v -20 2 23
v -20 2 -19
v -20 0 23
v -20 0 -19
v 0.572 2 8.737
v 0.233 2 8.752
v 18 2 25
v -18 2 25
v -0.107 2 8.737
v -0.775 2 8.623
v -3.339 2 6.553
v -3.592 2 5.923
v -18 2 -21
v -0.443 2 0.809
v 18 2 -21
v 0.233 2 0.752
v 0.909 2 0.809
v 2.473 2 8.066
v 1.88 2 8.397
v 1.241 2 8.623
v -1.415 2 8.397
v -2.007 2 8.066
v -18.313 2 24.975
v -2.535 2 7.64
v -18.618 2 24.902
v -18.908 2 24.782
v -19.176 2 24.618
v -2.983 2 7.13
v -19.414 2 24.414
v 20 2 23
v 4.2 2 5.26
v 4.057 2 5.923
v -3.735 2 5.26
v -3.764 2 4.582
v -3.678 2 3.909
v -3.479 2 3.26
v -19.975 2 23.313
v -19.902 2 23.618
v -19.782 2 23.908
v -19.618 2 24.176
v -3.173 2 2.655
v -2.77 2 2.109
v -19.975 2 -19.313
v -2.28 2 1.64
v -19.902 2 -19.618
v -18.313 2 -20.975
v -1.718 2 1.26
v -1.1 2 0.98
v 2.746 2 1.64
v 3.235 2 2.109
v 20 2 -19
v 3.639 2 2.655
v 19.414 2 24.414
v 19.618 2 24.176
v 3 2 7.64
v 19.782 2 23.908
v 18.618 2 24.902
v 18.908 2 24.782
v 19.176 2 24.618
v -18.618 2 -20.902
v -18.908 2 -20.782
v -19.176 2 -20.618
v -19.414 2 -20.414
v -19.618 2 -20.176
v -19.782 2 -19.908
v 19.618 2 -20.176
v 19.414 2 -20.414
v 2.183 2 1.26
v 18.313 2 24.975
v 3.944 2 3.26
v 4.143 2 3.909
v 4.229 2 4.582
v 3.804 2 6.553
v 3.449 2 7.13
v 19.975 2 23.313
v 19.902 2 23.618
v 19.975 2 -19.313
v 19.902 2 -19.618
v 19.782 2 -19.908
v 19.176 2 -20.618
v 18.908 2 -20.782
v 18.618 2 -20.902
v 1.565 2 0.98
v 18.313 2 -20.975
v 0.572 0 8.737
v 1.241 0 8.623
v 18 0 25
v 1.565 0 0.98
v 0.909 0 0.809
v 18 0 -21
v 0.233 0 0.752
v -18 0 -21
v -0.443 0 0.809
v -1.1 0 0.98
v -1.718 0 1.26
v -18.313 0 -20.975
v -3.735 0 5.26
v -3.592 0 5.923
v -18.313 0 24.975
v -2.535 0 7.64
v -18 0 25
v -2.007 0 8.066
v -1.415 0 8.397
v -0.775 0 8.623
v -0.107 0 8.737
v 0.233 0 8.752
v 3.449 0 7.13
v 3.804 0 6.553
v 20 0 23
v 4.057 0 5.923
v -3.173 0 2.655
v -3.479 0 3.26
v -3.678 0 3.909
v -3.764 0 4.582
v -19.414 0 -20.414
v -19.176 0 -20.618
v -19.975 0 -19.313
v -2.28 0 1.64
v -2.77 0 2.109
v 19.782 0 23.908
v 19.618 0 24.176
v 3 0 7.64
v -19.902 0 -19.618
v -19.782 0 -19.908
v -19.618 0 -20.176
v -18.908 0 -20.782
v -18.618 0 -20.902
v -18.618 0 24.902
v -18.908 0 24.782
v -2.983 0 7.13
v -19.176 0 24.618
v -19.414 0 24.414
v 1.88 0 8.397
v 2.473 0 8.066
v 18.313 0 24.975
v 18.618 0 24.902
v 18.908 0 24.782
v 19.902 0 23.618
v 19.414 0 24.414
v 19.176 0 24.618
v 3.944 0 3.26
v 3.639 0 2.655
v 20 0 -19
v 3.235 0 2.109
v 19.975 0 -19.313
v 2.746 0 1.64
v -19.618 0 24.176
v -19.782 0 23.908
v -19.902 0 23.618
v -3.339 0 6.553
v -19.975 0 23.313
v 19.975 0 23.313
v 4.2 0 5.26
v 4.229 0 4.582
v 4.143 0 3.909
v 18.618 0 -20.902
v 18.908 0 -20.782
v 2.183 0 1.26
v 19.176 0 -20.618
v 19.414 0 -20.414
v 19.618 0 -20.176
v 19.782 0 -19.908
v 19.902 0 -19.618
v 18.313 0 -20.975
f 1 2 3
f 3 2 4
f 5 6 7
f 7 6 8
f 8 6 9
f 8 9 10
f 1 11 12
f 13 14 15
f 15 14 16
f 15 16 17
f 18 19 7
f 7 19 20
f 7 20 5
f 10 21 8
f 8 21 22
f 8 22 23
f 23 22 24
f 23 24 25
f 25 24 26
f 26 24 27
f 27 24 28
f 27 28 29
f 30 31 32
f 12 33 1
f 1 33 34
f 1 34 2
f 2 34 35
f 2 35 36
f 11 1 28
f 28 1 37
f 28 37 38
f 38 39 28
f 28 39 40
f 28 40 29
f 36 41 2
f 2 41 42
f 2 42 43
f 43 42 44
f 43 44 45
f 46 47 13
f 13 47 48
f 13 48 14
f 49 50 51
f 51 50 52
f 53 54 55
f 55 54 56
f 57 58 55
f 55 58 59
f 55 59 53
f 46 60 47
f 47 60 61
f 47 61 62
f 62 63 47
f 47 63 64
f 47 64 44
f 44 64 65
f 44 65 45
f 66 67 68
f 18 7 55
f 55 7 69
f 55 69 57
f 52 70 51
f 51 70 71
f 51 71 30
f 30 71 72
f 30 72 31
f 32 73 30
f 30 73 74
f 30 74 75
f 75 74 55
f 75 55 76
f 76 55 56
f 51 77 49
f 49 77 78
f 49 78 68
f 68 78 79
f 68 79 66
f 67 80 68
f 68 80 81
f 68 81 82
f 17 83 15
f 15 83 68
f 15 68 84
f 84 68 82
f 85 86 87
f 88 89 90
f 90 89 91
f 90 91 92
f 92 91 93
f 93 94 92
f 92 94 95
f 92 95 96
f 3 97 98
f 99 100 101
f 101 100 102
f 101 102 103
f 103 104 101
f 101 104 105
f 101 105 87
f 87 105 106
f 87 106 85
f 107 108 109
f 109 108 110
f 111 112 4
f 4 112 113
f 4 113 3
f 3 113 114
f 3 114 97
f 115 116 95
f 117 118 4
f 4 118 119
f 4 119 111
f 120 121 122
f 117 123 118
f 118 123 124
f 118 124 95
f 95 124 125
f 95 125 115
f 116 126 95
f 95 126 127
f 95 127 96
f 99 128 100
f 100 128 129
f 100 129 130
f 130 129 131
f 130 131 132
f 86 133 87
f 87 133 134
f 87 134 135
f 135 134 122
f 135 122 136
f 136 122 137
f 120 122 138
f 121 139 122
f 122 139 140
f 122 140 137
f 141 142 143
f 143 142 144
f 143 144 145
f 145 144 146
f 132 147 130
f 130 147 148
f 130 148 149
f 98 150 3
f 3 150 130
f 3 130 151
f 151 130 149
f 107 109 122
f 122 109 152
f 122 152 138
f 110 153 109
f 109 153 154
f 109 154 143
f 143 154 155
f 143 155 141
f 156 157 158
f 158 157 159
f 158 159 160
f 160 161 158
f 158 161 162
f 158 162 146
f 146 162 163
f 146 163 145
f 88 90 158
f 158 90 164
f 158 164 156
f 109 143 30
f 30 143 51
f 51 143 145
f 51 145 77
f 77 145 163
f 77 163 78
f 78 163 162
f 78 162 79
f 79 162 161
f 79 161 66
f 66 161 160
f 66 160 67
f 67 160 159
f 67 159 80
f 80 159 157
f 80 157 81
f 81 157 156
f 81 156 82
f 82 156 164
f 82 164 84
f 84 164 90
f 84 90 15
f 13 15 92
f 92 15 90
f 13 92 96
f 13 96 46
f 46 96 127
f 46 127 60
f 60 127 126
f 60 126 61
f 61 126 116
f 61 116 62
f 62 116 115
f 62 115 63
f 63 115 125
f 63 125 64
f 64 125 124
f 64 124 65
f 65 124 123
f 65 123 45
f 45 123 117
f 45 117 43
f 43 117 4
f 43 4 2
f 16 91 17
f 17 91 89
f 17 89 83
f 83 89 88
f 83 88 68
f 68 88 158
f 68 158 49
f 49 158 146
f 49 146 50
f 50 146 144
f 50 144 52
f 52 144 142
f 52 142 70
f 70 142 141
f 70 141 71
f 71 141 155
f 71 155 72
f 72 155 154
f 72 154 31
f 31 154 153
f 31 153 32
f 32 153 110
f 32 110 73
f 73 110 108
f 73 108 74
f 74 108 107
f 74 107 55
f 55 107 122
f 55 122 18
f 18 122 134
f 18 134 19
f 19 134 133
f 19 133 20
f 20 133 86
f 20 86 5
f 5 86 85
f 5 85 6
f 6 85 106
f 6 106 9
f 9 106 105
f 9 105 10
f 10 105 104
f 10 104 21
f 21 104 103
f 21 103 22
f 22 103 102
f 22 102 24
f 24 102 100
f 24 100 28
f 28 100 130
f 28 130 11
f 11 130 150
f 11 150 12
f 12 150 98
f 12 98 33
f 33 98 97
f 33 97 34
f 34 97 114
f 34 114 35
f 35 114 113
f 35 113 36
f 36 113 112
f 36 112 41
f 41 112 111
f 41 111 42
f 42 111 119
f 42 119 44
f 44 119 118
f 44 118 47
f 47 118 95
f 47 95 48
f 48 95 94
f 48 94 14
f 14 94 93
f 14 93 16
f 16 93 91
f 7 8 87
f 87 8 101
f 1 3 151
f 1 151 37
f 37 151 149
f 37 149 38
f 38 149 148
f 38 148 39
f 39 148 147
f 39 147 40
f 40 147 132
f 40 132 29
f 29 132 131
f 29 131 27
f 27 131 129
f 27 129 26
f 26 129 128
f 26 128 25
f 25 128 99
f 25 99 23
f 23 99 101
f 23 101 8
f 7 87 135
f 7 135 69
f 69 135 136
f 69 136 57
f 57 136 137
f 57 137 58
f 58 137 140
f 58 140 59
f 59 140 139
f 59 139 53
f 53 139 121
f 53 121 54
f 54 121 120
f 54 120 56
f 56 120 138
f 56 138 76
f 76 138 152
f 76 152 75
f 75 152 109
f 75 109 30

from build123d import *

# Parameters (mm, degrees)
SKETCH1_R               = 4
BOSS_EXTRUDE1_DEPTH     = 2
SKETCH5_W               = 40
SKETCH5_H               = 2
BOSS_EXTRUDE5_DEPTH     = 40
CUT_EXTRUDE4_DEPTH      = 64.976558207
CUT_EXTRUDE4_DEPTH_BACK = 52
SKETCH8_W               = 2
SKETCH8_H               = 42
FILLET1_R               = 2
FILLET2_R               = 2


with BuildPart() as part:
    # Sketch1 → Boss-Extrude1 (new body)
    with BuildSketch(Plane(origin=(0, 0, 0), x_dir=(1, 0, 0), z_dir=(0, 1, 0))):
        with BuildLine():
            Line((-20, -21), (-20, -27))
            Line((-20, -27), (20, -27))
            Line((20, -27), (20, -21))
            Line((20, -21), (20, 19))
            ThreePointArc((20, 19), (19.414213562, 20.414213562), (18, 21))
            Line((18, 21), (-18, 21))
            ThreePointArc((-18, 21), (-19.414213562, 20.414213562), (-20, 19))
            Line((-20, 19), (-20, -21))
        make_face()
        with Locations(Location((0.232716016, -4.751871967, 0), (0, 0, 270))):
            Circle(SKETCH1_R, mode=Mode.SUBTRACT)
    extrude(amount=BOSS_EXTRUDE1_DEPTH)

    # Sketch5 → Boss-Extrude5 (add)
    with BuildSketch(Plane(origin=(0, 2, 0), x_dir=(1, 0, 0), z_dir=(0, 1, 0))):
        with Locations((0, -26)):
            Rectangle(SKETCH5_W, SKETCH5_H)
    extrude(amount=BOSS_EXTRUDE5_DEPTH)

    # Sketch8 → Cut-Extrude4 (cut, two sides: drawn at the far end of the back side and taken through both)
    with BuildSketch(Plane.ZY.offset(20).offset(-CUT_EXTRUDE4_DEPTH_BACK)):
        with Locations((26, 21)):
            Rectangle(SKETCH8_W, SKETCH8_H)
    extrude(amount=CUT_EXTRUDE4_DEPTH + CUT_EXTRUDE4_DEPTH_BACK, mode=Mode.SUBTRACT)

    # Fillet1
    fillet1_edges = [part.edges().sort_by_distance(p)[0] for p in [
        (-20, 1, 25),
    ]]
    fillet(fillet1_edges, radius=FILLET1_R)

    # Fillet2
    fillet2_edges = [part.edges().sort_by_distance(p)[0] for p in [
        (20, 1, 25),
    ]]
    fillet(fillet2_edges, radius=FILLET2_R)


solid = part.part
